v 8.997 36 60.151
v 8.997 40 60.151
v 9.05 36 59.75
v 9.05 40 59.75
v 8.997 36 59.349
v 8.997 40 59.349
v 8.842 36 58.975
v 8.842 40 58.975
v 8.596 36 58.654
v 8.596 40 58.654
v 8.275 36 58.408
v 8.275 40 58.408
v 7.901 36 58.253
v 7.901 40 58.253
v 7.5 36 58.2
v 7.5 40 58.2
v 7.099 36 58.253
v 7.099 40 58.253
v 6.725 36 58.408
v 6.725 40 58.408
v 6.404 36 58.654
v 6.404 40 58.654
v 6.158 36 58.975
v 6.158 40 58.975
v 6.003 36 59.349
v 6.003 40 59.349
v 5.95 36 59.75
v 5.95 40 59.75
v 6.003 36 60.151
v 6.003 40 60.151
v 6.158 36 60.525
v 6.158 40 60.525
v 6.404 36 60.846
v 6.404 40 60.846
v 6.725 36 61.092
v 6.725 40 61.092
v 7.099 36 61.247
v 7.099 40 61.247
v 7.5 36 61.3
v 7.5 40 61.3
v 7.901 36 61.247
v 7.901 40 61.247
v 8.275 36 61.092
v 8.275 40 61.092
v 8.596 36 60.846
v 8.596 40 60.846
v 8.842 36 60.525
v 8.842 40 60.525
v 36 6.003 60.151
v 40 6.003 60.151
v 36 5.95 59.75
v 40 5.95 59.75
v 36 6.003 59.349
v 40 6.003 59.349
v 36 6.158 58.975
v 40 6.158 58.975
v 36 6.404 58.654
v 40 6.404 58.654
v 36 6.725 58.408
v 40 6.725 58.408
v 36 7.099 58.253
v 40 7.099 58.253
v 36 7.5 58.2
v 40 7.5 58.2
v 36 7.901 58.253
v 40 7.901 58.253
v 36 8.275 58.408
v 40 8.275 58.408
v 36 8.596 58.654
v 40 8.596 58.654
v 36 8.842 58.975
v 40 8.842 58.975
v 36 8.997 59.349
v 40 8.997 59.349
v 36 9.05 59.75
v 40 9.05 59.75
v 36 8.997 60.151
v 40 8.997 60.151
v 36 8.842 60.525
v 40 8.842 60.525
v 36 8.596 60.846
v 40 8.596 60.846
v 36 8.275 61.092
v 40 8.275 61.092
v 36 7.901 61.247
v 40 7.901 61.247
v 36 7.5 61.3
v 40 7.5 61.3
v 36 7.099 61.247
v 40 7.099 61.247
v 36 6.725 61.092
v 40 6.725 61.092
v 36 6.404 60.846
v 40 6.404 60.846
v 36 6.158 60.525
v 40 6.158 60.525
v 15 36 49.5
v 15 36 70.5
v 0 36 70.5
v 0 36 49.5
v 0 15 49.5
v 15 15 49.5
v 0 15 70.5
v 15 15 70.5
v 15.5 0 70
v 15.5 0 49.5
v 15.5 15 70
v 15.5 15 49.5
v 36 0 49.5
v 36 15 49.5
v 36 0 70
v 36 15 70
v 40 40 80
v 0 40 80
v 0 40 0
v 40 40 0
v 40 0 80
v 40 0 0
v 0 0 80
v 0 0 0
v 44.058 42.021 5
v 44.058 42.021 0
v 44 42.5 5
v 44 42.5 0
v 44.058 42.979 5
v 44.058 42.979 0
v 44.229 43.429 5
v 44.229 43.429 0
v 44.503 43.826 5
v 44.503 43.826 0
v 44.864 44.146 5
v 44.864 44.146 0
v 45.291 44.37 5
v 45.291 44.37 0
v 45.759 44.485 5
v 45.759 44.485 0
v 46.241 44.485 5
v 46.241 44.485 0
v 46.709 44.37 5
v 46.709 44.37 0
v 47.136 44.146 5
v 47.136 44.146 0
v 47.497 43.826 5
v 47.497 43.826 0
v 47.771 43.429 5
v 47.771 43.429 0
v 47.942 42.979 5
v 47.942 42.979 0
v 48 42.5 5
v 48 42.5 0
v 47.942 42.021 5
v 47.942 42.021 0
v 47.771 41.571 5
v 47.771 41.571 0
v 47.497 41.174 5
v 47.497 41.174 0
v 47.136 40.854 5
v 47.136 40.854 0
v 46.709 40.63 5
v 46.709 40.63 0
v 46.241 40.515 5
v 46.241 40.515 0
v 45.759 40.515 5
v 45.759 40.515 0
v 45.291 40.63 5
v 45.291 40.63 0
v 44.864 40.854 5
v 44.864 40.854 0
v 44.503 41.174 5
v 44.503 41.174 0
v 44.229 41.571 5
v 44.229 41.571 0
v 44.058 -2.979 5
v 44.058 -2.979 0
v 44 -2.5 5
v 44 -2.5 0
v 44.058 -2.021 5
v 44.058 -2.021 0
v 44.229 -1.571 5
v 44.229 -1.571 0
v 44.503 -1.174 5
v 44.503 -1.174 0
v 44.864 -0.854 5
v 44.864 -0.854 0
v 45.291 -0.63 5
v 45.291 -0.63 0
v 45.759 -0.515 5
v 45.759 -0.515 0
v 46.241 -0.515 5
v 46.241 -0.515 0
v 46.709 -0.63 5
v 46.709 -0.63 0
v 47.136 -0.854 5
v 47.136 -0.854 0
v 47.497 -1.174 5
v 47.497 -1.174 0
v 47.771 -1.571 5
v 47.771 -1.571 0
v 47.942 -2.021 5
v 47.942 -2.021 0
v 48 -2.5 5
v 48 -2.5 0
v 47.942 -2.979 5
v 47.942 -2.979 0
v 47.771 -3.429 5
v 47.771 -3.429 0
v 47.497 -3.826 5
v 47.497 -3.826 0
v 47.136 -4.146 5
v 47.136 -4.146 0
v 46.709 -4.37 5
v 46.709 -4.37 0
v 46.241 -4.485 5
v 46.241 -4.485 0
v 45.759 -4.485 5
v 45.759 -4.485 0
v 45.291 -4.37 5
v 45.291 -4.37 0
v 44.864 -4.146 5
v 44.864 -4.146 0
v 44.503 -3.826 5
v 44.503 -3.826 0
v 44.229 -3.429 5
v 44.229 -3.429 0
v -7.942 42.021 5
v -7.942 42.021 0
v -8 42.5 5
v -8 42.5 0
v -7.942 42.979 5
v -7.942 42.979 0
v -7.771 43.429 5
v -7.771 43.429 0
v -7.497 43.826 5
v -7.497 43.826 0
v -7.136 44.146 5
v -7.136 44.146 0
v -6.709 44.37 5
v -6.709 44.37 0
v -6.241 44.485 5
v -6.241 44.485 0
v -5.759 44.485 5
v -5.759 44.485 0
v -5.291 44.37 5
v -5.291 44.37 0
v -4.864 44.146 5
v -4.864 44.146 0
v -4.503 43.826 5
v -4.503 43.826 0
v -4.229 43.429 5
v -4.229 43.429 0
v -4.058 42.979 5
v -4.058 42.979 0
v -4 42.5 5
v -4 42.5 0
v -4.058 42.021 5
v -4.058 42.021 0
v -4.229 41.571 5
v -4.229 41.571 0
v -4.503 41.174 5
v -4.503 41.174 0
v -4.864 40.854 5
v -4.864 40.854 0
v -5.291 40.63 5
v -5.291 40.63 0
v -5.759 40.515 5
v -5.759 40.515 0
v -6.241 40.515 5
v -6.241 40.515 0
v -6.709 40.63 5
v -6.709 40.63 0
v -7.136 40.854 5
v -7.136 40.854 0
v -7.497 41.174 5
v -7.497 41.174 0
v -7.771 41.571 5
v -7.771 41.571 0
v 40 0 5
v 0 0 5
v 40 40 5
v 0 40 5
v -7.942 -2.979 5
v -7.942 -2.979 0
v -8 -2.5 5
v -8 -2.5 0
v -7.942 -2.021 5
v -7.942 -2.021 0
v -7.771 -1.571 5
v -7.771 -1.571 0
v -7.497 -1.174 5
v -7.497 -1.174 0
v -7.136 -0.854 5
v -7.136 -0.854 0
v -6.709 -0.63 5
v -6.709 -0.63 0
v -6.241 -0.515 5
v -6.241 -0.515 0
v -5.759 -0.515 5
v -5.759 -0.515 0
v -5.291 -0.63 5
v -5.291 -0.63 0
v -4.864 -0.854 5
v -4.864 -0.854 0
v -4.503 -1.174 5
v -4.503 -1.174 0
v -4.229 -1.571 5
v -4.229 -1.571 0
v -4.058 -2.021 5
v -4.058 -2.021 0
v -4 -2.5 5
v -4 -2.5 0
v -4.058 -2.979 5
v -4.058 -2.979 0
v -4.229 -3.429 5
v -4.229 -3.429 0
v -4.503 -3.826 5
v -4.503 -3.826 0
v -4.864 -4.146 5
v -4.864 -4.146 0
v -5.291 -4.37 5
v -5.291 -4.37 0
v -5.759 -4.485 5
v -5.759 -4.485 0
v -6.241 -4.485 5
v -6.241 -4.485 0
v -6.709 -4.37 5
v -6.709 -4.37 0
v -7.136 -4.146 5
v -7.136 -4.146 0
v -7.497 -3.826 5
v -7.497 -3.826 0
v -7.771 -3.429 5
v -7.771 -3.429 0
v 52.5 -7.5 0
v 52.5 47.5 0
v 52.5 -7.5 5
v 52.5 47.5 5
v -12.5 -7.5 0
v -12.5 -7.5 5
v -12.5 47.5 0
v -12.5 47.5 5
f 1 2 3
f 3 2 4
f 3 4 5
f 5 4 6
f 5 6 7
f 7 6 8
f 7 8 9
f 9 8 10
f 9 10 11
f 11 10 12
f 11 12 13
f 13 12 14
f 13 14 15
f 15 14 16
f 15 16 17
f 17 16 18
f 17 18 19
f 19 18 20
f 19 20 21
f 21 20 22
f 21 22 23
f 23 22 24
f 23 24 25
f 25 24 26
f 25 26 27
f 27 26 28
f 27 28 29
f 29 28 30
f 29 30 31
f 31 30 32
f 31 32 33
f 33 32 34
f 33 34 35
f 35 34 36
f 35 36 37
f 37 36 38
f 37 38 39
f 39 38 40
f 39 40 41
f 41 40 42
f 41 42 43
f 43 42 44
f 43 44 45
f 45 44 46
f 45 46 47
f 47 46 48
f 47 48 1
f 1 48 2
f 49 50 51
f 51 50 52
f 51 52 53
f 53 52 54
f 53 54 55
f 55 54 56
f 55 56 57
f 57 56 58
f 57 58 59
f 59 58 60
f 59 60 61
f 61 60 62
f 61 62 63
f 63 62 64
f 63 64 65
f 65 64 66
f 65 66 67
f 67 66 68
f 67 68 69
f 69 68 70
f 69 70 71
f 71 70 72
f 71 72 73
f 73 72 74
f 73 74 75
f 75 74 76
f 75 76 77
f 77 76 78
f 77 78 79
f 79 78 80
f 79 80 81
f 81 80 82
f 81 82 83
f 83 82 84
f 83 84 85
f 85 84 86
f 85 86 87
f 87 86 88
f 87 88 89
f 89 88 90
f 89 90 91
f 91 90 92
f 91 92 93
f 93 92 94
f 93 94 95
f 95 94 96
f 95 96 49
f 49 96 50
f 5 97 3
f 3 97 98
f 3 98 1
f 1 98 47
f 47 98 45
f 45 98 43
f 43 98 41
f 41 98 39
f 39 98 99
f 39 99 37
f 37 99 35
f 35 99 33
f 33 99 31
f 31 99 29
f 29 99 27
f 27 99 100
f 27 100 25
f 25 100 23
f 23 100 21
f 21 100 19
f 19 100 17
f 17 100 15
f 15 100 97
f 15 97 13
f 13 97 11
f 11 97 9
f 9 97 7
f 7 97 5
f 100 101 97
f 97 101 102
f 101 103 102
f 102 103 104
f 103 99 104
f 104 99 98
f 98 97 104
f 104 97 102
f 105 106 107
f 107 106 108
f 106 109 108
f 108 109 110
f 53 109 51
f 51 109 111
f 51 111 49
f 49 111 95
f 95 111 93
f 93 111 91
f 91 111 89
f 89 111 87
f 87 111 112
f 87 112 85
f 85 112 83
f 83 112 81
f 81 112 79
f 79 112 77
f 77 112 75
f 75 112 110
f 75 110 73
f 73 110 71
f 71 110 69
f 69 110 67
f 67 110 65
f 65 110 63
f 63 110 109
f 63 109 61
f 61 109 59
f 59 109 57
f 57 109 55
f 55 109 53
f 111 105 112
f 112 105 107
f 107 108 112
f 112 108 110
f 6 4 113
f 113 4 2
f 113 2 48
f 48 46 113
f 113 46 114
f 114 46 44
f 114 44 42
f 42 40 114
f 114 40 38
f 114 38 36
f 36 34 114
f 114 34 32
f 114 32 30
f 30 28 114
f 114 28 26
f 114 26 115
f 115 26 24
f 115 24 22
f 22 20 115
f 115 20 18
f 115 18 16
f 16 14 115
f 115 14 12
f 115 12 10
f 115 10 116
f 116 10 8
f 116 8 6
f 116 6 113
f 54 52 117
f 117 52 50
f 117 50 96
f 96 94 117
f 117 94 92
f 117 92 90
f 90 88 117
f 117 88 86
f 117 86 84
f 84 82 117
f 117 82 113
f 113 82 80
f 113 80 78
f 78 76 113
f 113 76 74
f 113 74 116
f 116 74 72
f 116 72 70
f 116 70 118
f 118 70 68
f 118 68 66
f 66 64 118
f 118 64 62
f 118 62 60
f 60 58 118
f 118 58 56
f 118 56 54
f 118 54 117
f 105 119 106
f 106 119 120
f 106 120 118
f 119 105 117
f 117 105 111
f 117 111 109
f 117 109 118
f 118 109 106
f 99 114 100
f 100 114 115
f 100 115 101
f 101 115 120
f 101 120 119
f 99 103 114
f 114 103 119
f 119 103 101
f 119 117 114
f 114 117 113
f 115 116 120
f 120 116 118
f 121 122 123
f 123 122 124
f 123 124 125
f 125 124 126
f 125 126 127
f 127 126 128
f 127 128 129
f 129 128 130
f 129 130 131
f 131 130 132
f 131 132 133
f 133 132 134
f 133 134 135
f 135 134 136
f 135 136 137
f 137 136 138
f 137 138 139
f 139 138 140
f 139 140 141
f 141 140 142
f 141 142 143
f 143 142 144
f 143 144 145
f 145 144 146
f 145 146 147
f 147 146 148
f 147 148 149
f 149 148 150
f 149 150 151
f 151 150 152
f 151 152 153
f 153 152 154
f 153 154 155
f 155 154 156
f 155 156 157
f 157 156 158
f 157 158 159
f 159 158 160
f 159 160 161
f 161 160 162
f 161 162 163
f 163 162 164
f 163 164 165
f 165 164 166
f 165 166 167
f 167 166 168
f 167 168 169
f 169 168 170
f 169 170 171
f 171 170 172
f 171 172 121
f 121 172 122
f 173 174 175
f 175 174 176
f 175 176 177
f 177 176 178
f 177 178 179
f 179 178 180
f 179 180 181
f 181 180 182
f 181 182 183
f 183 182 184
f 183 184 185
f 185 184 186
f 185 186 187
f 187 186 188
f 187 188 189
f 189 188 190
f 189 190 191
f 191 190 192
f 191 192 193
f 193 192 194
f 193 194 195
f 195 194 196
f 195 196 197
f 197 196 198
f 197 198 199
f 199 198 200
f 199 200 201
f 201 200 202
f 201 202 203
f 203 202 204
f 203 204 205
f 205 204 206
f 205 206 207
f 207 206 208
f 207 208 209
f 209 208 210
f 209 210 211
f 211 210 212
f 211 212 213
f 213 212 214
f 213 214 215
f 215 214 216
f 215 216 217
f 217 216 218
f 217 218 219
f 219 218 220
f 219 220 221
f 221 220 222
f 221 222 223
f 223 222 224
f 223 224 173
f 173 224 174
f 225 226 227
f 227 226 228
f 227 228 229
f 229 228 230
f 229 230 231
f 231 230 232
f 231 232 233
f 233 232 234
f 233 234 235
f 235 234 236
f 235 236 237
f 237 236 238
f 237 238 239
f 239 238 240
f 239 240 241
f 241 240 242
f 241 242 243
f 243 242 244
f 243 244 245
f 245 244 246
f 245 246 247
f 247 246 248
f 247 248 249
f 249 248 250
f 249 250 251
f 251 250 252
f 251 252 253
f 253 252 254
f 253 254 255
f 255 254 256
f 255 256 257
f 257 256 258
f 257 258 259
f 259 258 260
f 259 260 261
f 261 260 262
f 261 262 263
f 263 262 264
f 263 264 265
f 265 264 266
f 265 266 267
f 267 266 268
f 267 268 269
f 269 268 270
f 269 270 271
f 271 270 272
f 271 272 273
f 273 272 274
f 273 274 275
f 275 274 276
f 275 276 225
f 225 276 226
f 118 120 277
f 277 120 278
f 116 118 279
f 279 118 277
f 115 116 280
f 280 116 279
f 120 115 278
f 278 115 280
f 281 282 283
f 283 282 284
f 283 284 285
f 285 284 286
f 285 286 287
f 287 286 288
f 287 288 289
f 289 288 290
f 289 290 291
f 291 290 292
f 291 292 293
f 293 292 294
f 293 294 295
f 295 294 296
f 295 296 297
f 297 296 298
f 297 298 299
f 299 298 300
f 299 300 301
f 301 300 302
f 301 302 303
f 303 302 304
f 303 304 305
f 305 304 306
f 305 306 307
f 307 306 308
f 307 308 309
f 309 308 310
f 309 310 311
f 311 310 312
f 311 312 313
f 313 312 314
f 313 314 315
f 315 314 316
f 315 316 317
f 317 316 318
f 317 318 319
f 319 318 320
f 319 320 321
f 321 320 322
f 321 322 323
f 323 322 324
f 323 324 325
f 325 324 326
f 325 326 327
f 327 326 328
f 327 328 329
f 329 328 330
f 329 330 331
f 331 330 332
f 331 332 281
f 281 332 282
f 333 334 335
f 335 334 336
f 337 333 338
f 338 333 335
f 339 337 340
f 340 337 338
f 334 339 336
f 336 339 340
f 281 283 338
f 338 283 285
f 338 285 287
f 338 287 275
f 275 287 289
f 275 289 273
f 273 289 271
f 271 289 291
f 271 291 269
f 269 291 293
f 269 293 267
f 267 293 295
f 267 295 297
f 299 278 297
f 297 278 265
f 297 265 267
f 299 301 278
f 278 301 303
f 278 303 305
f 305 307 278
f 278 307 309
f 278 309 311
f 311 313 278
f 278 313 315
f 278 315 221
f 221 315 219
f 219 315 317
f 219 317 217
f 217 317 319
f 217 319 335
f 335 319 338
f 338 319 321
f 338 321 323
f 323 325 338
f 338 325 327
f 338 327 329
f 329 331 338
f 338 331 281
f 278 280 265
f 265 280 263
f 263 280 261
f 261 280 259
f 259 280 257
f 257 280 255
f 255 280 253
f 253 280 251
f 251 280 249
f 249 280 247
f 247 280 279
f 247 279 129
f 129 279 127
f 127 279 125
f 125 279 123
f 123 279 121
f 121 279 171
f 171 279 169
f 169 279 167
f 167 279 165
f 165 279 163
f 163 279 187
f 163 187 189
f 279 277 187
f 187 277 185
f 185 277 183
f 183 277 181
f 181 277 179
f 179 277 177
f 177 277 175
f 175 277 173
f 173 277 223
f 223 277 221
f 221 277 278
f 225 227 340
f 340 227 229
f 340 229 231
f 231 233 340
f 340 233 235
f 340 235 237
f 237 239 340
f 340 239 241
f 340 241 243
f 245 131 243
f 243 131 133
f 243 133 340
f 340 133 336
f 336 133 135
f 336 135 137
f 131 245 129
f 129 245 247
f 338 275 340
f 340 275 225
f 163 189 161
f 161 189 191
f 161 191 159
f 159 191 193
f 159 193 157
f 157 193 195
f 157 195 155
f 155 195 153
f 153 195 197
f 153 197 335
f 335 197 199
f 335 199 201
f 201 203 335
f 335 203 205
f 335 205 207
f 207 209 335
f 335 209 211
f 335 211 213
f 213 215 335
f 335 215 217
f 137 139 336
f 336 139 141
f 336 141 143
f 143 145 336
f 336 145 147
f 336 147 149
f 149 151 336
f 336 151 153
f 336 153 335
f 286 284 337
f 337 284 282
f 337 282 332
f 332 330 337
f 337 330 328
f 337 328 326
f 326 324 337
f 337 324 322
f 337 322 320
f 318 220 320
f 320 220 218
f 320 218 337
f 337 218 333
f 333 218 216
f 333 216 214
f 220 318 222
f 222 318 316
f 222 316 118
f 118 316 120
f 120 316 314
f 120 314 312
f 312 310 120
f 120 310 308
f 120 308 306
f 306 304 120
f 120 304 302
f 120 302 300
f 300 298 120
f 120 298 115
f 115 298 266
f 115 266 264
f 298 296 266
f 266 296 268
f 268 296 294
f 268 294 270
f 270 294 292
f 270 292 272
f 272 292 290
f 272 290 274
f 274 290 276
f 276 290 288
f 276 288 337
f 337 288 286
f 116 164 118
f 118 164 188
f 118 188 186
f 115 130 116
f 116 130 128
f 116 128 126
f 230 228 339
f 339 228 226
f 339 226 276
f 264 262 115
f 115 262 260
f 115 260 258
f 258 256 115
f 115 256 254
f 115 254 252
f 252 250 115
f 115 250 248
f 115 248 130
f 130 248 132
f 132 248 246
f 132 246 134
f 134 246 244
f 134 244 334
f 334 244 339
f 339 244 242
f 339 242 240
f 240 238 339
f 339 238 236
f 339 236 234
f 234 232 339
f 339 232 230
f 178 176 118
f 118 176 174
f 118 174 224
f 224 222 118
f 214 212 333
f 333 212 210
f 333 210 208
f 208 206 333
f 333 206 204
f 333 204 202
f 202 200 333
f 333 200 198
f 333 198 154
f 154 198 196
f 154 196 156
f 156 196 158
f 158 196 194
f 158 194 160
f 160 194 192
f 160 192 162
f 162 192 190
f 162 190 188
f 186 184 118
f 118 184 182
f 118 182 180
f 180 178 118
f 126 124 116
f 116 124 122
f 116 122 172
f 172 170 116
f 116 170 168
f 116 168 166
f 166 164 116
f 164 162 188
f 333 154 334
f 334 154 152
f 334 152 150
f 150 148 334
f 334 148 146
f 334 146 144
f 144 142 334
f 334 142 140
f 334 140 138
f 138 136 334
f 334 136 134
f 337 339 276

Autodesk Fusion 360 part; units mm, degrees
sketch "Boceto1" plane through (0, 0, 0) normal (0, 0, 1) x (1, 0, 0)
  line L0 (0, 0) -> (40, 0)
  line L1 (40, 0) -> (40, 40)
  line L2 (40, 40) -> (0, 40)
  line L3 (0, 40) -> (0, 0)
  line L4 (52.5, -7.5) -> (-12.5, -7.5)
  line L5 (-12.5, -7.5) -> (-12.5, 47.5)
  line L6 (-12.5, 47.5) -> (52.5, 47.5)
  line L7 (52.5, 47.5) -> (52.5, -7.5)
  line L8 (52.5, -7.5) -> (-12.5, 47.5) construction
  line L9 (-12.5, -7.5) -> (52.5, 47.5) construction
  line L10 (46, -2.5) -> (-6, -2.5) construction
  line L11 (-6, -2.5) -> (-6, 42.5) construction
  line L12 (-6, 42.5) -> (46, 42.5) construction
  line L13 (46, 42.5) -> (46, -2.5) construction
  line L14 (46, -2.5) -> (-6, 42.5) construction
  line L15 (-6, -2.5) -> (46, 42.5) construction
  circle A0 centre (46, 42.5) radius 2
  circle A1 centre (-6, 42.5) radius 2
  circle A2 centre (-6, -2.5) radius 2
  circle A3 centre (46, -2.5) radius 2
  point P0 (20, 20)
  point P1 (20, 20)
  dimension "d1" = 40
  dimension "d2" = 40
  dimension "d19" = 65
  dimension "d20" = 55
  dimension "d21" = 52
  dimension "d22" = 45
  dimension "d23" = 4
  dimension "d24" = 4
  dimension "d25" = 4
  dimension "d26" = 4
extrude "Extruir1" add sketch "Boceto1" along normal blind 80 contours L0 L1 L2 L3 makes body 1
sketch "Boceto2" plane through (0, 0, 0) normal (0, -1, 0) x (1, 0, 0)
  line L0 (0, 0) -> (40, 0)
  line L1 (40, 0) -> (40, 80)
  line L2 (40, 80) -> (0, 80)
  line L3 (0, 80) -> (0, 0)
  line L4 (36, 49.5) -> (15.5, 49.5)
  line L5 (15.5, 49.5) -> (15.5, 70)
  line L6 (15.5, 70) -> (36, 70)
  line L7 (36, 70) -> (36, 49.5)
  line L8 (36, 49.5) -> (15.5, 70) construction
  line L9 (15.5, 49.5) -> (36, 70) construction
  line L10 (0, 0) -> (40, 0)
  line L11 (40, 0) -> (40, 80)
  line L12 (40, 80) -> (0, 80)
  line L13 (0, 80) -> (0, 0)
  point P0 (25.75, 59.75)
  dimension "d5" = 20.5
  dimension "d6" = 20.5
  dimension "d7" = 49.5
  dimension "d8" = 4
extrude "Extruir2" cut sketch "Boceto2" against normal blind 15 contours L4 L5 L6 L7 bodies 1
sketch "Boceto3" plane through (0, 0, 0) normal (-1, 0, 0) x (0, -1, 0)
  line L0 (-40, 0) -> (0, 0)
  line L1 (0, 0) -> (0, 80)
  line L2 (0, 80) -> (-40, 80)
  line L3 (-40, 80) -> (-40, 0)
  line L4 (0, 0) -> (-40, 0)
  line L5 (-40, 0) -> (-40, 80)
  line L6 (-40, 80) -> (0, 80)
  line L7 (0, 80) -> (0, 0)
  line L8 (-15, 49.5) -> (-36, 49.5)
  line L9 (-36, 49.5) -> (-36, 70.5)
  line L10 (-36, 70.5) -> (-15, 70.5)
  line L11 (-15, 70.5) -> (-15, 49.5)
  line L12 (-15, 49.5) -> (-36, 70.5) construction
  line L13 (-36, 49.5) -> (-15, 70.5) construction
  point P0 (-25.5, 60)
  dimension "d11" = 21
  dimension "d12" = 21
  dimension "d13" = 49.5
  dimension "d14" = 4
extrude "Extruir3" cut sketch "Boceto3" against normal blind 15 contours L8 L9 L10 L11 bodies 1
sketch "Boceto4" plane through (0, 15, 0) normal (0, -1, 0) x (1, 0, 0)
  line L0 (36, 70) -> (15.5, 70)
  line L1 (15.5, 49.5) -> (36, 49.5)
  line L2 (36, 49.5) -> (36, 70)
  line L3 (15.5, 70) -> (36, 70)
  line L4 (36, 70) -> (36, 49.5)
  line L5 (36, 49.5) -> (15.5, 49.5)
  line L6 (15.5, 49.5) -> (15.5, 70)
  circle A0 centre (25.5, 60) radius 2.1
  line L7 (15.5, 70) -> (15.5, 49.5)
  dimension "d17" = 4.2
sketch "Boceto5" plane through (15, 0, 0) normal (-1, 0, 0) x (0, -1, 0)
  line L0 (-15, 70.5) -> (-36, 70.5)
  line L1 (-36, 70.5) -> (-36, 49.5)
  line L2 (-36, 49.5) -> (-15, 49.5)
  line L3 (-36, 70.5) -> (-15, 70.5)
  line L4 (-15, 70.5) -> (-15, 49.5)
  line L5 (-15, 49.5) -> (-36, 49.5)
  line L6 (-36, 49.5) -> (-36, 70.5)
  circle A0 centre (-25.5, 60) radius 2.1
  line L7 (-15, 49.5) -> (-15, 70.5)
  dimension "d18" = 4.2
extrude "Extruir4" add sketch "Boceto1" along normal blind 5 separate body makes body 2
sketch "Boceto6" plane through (40, 0, 0) normal (1, 0, 0) x (0, 1, 0)
  line L0 (0, 0) -> (40, 0)
  line L1 (40, 0) -> (40, 80)
  line L2 (40, 80) -> (0, 80)
  line L3 (0, 80) -> (0, 0)
  line L4 (0, 80) -> (0, 70)
  line L5 (0, 70) -> (15, 70)
  line L6 (15, 70) -> (15, 49.5)
  line L7 (15, 49.5) -> (0, 49.5)
  line L8 (0, 49.5) -> (0, 70)
  circle A0 centre (7.5, 59.75) radius 1.55
  dimension "d29" = 10
  dimension "d30" = 20.5
  dimension "d31" = 3.1
extrude "Extruir5" cut sketch "Boceto6" against normal blind 4 contours A0 bodies 1
sketch "Boceto7" plane through (0, 40, 0) normal (0, 1, 0) x (-1, 0, 0)
  line L0 (-40, 0) -> (0, 0)
  line L1 (0, 0) -> (0, 80)
  line L2 (0, 80) -> (-40, 80)
  line L3 (-40, 80) -> (-40, 0)
  line L4 (0, 80) -> (0, 70)
  line L5 (0, 70) -> (-15, 70)
  line L6 (-15, 70) -> (-15, 49.5)
  line L7 (-15, 49.5) -> (0, 49.5)
  line L8 (0, 49.5) -> (0, 70)
  circle A0 centre (-7.5, 59.75) radius 1.55
  dimension "d34" = 15
  dimension "d35" = 20.5
  dimension "d36" = 3.1
extrude "Extruir6" cut sketch "Boceto7" against normal blind 4 contours A0 bodies 1
